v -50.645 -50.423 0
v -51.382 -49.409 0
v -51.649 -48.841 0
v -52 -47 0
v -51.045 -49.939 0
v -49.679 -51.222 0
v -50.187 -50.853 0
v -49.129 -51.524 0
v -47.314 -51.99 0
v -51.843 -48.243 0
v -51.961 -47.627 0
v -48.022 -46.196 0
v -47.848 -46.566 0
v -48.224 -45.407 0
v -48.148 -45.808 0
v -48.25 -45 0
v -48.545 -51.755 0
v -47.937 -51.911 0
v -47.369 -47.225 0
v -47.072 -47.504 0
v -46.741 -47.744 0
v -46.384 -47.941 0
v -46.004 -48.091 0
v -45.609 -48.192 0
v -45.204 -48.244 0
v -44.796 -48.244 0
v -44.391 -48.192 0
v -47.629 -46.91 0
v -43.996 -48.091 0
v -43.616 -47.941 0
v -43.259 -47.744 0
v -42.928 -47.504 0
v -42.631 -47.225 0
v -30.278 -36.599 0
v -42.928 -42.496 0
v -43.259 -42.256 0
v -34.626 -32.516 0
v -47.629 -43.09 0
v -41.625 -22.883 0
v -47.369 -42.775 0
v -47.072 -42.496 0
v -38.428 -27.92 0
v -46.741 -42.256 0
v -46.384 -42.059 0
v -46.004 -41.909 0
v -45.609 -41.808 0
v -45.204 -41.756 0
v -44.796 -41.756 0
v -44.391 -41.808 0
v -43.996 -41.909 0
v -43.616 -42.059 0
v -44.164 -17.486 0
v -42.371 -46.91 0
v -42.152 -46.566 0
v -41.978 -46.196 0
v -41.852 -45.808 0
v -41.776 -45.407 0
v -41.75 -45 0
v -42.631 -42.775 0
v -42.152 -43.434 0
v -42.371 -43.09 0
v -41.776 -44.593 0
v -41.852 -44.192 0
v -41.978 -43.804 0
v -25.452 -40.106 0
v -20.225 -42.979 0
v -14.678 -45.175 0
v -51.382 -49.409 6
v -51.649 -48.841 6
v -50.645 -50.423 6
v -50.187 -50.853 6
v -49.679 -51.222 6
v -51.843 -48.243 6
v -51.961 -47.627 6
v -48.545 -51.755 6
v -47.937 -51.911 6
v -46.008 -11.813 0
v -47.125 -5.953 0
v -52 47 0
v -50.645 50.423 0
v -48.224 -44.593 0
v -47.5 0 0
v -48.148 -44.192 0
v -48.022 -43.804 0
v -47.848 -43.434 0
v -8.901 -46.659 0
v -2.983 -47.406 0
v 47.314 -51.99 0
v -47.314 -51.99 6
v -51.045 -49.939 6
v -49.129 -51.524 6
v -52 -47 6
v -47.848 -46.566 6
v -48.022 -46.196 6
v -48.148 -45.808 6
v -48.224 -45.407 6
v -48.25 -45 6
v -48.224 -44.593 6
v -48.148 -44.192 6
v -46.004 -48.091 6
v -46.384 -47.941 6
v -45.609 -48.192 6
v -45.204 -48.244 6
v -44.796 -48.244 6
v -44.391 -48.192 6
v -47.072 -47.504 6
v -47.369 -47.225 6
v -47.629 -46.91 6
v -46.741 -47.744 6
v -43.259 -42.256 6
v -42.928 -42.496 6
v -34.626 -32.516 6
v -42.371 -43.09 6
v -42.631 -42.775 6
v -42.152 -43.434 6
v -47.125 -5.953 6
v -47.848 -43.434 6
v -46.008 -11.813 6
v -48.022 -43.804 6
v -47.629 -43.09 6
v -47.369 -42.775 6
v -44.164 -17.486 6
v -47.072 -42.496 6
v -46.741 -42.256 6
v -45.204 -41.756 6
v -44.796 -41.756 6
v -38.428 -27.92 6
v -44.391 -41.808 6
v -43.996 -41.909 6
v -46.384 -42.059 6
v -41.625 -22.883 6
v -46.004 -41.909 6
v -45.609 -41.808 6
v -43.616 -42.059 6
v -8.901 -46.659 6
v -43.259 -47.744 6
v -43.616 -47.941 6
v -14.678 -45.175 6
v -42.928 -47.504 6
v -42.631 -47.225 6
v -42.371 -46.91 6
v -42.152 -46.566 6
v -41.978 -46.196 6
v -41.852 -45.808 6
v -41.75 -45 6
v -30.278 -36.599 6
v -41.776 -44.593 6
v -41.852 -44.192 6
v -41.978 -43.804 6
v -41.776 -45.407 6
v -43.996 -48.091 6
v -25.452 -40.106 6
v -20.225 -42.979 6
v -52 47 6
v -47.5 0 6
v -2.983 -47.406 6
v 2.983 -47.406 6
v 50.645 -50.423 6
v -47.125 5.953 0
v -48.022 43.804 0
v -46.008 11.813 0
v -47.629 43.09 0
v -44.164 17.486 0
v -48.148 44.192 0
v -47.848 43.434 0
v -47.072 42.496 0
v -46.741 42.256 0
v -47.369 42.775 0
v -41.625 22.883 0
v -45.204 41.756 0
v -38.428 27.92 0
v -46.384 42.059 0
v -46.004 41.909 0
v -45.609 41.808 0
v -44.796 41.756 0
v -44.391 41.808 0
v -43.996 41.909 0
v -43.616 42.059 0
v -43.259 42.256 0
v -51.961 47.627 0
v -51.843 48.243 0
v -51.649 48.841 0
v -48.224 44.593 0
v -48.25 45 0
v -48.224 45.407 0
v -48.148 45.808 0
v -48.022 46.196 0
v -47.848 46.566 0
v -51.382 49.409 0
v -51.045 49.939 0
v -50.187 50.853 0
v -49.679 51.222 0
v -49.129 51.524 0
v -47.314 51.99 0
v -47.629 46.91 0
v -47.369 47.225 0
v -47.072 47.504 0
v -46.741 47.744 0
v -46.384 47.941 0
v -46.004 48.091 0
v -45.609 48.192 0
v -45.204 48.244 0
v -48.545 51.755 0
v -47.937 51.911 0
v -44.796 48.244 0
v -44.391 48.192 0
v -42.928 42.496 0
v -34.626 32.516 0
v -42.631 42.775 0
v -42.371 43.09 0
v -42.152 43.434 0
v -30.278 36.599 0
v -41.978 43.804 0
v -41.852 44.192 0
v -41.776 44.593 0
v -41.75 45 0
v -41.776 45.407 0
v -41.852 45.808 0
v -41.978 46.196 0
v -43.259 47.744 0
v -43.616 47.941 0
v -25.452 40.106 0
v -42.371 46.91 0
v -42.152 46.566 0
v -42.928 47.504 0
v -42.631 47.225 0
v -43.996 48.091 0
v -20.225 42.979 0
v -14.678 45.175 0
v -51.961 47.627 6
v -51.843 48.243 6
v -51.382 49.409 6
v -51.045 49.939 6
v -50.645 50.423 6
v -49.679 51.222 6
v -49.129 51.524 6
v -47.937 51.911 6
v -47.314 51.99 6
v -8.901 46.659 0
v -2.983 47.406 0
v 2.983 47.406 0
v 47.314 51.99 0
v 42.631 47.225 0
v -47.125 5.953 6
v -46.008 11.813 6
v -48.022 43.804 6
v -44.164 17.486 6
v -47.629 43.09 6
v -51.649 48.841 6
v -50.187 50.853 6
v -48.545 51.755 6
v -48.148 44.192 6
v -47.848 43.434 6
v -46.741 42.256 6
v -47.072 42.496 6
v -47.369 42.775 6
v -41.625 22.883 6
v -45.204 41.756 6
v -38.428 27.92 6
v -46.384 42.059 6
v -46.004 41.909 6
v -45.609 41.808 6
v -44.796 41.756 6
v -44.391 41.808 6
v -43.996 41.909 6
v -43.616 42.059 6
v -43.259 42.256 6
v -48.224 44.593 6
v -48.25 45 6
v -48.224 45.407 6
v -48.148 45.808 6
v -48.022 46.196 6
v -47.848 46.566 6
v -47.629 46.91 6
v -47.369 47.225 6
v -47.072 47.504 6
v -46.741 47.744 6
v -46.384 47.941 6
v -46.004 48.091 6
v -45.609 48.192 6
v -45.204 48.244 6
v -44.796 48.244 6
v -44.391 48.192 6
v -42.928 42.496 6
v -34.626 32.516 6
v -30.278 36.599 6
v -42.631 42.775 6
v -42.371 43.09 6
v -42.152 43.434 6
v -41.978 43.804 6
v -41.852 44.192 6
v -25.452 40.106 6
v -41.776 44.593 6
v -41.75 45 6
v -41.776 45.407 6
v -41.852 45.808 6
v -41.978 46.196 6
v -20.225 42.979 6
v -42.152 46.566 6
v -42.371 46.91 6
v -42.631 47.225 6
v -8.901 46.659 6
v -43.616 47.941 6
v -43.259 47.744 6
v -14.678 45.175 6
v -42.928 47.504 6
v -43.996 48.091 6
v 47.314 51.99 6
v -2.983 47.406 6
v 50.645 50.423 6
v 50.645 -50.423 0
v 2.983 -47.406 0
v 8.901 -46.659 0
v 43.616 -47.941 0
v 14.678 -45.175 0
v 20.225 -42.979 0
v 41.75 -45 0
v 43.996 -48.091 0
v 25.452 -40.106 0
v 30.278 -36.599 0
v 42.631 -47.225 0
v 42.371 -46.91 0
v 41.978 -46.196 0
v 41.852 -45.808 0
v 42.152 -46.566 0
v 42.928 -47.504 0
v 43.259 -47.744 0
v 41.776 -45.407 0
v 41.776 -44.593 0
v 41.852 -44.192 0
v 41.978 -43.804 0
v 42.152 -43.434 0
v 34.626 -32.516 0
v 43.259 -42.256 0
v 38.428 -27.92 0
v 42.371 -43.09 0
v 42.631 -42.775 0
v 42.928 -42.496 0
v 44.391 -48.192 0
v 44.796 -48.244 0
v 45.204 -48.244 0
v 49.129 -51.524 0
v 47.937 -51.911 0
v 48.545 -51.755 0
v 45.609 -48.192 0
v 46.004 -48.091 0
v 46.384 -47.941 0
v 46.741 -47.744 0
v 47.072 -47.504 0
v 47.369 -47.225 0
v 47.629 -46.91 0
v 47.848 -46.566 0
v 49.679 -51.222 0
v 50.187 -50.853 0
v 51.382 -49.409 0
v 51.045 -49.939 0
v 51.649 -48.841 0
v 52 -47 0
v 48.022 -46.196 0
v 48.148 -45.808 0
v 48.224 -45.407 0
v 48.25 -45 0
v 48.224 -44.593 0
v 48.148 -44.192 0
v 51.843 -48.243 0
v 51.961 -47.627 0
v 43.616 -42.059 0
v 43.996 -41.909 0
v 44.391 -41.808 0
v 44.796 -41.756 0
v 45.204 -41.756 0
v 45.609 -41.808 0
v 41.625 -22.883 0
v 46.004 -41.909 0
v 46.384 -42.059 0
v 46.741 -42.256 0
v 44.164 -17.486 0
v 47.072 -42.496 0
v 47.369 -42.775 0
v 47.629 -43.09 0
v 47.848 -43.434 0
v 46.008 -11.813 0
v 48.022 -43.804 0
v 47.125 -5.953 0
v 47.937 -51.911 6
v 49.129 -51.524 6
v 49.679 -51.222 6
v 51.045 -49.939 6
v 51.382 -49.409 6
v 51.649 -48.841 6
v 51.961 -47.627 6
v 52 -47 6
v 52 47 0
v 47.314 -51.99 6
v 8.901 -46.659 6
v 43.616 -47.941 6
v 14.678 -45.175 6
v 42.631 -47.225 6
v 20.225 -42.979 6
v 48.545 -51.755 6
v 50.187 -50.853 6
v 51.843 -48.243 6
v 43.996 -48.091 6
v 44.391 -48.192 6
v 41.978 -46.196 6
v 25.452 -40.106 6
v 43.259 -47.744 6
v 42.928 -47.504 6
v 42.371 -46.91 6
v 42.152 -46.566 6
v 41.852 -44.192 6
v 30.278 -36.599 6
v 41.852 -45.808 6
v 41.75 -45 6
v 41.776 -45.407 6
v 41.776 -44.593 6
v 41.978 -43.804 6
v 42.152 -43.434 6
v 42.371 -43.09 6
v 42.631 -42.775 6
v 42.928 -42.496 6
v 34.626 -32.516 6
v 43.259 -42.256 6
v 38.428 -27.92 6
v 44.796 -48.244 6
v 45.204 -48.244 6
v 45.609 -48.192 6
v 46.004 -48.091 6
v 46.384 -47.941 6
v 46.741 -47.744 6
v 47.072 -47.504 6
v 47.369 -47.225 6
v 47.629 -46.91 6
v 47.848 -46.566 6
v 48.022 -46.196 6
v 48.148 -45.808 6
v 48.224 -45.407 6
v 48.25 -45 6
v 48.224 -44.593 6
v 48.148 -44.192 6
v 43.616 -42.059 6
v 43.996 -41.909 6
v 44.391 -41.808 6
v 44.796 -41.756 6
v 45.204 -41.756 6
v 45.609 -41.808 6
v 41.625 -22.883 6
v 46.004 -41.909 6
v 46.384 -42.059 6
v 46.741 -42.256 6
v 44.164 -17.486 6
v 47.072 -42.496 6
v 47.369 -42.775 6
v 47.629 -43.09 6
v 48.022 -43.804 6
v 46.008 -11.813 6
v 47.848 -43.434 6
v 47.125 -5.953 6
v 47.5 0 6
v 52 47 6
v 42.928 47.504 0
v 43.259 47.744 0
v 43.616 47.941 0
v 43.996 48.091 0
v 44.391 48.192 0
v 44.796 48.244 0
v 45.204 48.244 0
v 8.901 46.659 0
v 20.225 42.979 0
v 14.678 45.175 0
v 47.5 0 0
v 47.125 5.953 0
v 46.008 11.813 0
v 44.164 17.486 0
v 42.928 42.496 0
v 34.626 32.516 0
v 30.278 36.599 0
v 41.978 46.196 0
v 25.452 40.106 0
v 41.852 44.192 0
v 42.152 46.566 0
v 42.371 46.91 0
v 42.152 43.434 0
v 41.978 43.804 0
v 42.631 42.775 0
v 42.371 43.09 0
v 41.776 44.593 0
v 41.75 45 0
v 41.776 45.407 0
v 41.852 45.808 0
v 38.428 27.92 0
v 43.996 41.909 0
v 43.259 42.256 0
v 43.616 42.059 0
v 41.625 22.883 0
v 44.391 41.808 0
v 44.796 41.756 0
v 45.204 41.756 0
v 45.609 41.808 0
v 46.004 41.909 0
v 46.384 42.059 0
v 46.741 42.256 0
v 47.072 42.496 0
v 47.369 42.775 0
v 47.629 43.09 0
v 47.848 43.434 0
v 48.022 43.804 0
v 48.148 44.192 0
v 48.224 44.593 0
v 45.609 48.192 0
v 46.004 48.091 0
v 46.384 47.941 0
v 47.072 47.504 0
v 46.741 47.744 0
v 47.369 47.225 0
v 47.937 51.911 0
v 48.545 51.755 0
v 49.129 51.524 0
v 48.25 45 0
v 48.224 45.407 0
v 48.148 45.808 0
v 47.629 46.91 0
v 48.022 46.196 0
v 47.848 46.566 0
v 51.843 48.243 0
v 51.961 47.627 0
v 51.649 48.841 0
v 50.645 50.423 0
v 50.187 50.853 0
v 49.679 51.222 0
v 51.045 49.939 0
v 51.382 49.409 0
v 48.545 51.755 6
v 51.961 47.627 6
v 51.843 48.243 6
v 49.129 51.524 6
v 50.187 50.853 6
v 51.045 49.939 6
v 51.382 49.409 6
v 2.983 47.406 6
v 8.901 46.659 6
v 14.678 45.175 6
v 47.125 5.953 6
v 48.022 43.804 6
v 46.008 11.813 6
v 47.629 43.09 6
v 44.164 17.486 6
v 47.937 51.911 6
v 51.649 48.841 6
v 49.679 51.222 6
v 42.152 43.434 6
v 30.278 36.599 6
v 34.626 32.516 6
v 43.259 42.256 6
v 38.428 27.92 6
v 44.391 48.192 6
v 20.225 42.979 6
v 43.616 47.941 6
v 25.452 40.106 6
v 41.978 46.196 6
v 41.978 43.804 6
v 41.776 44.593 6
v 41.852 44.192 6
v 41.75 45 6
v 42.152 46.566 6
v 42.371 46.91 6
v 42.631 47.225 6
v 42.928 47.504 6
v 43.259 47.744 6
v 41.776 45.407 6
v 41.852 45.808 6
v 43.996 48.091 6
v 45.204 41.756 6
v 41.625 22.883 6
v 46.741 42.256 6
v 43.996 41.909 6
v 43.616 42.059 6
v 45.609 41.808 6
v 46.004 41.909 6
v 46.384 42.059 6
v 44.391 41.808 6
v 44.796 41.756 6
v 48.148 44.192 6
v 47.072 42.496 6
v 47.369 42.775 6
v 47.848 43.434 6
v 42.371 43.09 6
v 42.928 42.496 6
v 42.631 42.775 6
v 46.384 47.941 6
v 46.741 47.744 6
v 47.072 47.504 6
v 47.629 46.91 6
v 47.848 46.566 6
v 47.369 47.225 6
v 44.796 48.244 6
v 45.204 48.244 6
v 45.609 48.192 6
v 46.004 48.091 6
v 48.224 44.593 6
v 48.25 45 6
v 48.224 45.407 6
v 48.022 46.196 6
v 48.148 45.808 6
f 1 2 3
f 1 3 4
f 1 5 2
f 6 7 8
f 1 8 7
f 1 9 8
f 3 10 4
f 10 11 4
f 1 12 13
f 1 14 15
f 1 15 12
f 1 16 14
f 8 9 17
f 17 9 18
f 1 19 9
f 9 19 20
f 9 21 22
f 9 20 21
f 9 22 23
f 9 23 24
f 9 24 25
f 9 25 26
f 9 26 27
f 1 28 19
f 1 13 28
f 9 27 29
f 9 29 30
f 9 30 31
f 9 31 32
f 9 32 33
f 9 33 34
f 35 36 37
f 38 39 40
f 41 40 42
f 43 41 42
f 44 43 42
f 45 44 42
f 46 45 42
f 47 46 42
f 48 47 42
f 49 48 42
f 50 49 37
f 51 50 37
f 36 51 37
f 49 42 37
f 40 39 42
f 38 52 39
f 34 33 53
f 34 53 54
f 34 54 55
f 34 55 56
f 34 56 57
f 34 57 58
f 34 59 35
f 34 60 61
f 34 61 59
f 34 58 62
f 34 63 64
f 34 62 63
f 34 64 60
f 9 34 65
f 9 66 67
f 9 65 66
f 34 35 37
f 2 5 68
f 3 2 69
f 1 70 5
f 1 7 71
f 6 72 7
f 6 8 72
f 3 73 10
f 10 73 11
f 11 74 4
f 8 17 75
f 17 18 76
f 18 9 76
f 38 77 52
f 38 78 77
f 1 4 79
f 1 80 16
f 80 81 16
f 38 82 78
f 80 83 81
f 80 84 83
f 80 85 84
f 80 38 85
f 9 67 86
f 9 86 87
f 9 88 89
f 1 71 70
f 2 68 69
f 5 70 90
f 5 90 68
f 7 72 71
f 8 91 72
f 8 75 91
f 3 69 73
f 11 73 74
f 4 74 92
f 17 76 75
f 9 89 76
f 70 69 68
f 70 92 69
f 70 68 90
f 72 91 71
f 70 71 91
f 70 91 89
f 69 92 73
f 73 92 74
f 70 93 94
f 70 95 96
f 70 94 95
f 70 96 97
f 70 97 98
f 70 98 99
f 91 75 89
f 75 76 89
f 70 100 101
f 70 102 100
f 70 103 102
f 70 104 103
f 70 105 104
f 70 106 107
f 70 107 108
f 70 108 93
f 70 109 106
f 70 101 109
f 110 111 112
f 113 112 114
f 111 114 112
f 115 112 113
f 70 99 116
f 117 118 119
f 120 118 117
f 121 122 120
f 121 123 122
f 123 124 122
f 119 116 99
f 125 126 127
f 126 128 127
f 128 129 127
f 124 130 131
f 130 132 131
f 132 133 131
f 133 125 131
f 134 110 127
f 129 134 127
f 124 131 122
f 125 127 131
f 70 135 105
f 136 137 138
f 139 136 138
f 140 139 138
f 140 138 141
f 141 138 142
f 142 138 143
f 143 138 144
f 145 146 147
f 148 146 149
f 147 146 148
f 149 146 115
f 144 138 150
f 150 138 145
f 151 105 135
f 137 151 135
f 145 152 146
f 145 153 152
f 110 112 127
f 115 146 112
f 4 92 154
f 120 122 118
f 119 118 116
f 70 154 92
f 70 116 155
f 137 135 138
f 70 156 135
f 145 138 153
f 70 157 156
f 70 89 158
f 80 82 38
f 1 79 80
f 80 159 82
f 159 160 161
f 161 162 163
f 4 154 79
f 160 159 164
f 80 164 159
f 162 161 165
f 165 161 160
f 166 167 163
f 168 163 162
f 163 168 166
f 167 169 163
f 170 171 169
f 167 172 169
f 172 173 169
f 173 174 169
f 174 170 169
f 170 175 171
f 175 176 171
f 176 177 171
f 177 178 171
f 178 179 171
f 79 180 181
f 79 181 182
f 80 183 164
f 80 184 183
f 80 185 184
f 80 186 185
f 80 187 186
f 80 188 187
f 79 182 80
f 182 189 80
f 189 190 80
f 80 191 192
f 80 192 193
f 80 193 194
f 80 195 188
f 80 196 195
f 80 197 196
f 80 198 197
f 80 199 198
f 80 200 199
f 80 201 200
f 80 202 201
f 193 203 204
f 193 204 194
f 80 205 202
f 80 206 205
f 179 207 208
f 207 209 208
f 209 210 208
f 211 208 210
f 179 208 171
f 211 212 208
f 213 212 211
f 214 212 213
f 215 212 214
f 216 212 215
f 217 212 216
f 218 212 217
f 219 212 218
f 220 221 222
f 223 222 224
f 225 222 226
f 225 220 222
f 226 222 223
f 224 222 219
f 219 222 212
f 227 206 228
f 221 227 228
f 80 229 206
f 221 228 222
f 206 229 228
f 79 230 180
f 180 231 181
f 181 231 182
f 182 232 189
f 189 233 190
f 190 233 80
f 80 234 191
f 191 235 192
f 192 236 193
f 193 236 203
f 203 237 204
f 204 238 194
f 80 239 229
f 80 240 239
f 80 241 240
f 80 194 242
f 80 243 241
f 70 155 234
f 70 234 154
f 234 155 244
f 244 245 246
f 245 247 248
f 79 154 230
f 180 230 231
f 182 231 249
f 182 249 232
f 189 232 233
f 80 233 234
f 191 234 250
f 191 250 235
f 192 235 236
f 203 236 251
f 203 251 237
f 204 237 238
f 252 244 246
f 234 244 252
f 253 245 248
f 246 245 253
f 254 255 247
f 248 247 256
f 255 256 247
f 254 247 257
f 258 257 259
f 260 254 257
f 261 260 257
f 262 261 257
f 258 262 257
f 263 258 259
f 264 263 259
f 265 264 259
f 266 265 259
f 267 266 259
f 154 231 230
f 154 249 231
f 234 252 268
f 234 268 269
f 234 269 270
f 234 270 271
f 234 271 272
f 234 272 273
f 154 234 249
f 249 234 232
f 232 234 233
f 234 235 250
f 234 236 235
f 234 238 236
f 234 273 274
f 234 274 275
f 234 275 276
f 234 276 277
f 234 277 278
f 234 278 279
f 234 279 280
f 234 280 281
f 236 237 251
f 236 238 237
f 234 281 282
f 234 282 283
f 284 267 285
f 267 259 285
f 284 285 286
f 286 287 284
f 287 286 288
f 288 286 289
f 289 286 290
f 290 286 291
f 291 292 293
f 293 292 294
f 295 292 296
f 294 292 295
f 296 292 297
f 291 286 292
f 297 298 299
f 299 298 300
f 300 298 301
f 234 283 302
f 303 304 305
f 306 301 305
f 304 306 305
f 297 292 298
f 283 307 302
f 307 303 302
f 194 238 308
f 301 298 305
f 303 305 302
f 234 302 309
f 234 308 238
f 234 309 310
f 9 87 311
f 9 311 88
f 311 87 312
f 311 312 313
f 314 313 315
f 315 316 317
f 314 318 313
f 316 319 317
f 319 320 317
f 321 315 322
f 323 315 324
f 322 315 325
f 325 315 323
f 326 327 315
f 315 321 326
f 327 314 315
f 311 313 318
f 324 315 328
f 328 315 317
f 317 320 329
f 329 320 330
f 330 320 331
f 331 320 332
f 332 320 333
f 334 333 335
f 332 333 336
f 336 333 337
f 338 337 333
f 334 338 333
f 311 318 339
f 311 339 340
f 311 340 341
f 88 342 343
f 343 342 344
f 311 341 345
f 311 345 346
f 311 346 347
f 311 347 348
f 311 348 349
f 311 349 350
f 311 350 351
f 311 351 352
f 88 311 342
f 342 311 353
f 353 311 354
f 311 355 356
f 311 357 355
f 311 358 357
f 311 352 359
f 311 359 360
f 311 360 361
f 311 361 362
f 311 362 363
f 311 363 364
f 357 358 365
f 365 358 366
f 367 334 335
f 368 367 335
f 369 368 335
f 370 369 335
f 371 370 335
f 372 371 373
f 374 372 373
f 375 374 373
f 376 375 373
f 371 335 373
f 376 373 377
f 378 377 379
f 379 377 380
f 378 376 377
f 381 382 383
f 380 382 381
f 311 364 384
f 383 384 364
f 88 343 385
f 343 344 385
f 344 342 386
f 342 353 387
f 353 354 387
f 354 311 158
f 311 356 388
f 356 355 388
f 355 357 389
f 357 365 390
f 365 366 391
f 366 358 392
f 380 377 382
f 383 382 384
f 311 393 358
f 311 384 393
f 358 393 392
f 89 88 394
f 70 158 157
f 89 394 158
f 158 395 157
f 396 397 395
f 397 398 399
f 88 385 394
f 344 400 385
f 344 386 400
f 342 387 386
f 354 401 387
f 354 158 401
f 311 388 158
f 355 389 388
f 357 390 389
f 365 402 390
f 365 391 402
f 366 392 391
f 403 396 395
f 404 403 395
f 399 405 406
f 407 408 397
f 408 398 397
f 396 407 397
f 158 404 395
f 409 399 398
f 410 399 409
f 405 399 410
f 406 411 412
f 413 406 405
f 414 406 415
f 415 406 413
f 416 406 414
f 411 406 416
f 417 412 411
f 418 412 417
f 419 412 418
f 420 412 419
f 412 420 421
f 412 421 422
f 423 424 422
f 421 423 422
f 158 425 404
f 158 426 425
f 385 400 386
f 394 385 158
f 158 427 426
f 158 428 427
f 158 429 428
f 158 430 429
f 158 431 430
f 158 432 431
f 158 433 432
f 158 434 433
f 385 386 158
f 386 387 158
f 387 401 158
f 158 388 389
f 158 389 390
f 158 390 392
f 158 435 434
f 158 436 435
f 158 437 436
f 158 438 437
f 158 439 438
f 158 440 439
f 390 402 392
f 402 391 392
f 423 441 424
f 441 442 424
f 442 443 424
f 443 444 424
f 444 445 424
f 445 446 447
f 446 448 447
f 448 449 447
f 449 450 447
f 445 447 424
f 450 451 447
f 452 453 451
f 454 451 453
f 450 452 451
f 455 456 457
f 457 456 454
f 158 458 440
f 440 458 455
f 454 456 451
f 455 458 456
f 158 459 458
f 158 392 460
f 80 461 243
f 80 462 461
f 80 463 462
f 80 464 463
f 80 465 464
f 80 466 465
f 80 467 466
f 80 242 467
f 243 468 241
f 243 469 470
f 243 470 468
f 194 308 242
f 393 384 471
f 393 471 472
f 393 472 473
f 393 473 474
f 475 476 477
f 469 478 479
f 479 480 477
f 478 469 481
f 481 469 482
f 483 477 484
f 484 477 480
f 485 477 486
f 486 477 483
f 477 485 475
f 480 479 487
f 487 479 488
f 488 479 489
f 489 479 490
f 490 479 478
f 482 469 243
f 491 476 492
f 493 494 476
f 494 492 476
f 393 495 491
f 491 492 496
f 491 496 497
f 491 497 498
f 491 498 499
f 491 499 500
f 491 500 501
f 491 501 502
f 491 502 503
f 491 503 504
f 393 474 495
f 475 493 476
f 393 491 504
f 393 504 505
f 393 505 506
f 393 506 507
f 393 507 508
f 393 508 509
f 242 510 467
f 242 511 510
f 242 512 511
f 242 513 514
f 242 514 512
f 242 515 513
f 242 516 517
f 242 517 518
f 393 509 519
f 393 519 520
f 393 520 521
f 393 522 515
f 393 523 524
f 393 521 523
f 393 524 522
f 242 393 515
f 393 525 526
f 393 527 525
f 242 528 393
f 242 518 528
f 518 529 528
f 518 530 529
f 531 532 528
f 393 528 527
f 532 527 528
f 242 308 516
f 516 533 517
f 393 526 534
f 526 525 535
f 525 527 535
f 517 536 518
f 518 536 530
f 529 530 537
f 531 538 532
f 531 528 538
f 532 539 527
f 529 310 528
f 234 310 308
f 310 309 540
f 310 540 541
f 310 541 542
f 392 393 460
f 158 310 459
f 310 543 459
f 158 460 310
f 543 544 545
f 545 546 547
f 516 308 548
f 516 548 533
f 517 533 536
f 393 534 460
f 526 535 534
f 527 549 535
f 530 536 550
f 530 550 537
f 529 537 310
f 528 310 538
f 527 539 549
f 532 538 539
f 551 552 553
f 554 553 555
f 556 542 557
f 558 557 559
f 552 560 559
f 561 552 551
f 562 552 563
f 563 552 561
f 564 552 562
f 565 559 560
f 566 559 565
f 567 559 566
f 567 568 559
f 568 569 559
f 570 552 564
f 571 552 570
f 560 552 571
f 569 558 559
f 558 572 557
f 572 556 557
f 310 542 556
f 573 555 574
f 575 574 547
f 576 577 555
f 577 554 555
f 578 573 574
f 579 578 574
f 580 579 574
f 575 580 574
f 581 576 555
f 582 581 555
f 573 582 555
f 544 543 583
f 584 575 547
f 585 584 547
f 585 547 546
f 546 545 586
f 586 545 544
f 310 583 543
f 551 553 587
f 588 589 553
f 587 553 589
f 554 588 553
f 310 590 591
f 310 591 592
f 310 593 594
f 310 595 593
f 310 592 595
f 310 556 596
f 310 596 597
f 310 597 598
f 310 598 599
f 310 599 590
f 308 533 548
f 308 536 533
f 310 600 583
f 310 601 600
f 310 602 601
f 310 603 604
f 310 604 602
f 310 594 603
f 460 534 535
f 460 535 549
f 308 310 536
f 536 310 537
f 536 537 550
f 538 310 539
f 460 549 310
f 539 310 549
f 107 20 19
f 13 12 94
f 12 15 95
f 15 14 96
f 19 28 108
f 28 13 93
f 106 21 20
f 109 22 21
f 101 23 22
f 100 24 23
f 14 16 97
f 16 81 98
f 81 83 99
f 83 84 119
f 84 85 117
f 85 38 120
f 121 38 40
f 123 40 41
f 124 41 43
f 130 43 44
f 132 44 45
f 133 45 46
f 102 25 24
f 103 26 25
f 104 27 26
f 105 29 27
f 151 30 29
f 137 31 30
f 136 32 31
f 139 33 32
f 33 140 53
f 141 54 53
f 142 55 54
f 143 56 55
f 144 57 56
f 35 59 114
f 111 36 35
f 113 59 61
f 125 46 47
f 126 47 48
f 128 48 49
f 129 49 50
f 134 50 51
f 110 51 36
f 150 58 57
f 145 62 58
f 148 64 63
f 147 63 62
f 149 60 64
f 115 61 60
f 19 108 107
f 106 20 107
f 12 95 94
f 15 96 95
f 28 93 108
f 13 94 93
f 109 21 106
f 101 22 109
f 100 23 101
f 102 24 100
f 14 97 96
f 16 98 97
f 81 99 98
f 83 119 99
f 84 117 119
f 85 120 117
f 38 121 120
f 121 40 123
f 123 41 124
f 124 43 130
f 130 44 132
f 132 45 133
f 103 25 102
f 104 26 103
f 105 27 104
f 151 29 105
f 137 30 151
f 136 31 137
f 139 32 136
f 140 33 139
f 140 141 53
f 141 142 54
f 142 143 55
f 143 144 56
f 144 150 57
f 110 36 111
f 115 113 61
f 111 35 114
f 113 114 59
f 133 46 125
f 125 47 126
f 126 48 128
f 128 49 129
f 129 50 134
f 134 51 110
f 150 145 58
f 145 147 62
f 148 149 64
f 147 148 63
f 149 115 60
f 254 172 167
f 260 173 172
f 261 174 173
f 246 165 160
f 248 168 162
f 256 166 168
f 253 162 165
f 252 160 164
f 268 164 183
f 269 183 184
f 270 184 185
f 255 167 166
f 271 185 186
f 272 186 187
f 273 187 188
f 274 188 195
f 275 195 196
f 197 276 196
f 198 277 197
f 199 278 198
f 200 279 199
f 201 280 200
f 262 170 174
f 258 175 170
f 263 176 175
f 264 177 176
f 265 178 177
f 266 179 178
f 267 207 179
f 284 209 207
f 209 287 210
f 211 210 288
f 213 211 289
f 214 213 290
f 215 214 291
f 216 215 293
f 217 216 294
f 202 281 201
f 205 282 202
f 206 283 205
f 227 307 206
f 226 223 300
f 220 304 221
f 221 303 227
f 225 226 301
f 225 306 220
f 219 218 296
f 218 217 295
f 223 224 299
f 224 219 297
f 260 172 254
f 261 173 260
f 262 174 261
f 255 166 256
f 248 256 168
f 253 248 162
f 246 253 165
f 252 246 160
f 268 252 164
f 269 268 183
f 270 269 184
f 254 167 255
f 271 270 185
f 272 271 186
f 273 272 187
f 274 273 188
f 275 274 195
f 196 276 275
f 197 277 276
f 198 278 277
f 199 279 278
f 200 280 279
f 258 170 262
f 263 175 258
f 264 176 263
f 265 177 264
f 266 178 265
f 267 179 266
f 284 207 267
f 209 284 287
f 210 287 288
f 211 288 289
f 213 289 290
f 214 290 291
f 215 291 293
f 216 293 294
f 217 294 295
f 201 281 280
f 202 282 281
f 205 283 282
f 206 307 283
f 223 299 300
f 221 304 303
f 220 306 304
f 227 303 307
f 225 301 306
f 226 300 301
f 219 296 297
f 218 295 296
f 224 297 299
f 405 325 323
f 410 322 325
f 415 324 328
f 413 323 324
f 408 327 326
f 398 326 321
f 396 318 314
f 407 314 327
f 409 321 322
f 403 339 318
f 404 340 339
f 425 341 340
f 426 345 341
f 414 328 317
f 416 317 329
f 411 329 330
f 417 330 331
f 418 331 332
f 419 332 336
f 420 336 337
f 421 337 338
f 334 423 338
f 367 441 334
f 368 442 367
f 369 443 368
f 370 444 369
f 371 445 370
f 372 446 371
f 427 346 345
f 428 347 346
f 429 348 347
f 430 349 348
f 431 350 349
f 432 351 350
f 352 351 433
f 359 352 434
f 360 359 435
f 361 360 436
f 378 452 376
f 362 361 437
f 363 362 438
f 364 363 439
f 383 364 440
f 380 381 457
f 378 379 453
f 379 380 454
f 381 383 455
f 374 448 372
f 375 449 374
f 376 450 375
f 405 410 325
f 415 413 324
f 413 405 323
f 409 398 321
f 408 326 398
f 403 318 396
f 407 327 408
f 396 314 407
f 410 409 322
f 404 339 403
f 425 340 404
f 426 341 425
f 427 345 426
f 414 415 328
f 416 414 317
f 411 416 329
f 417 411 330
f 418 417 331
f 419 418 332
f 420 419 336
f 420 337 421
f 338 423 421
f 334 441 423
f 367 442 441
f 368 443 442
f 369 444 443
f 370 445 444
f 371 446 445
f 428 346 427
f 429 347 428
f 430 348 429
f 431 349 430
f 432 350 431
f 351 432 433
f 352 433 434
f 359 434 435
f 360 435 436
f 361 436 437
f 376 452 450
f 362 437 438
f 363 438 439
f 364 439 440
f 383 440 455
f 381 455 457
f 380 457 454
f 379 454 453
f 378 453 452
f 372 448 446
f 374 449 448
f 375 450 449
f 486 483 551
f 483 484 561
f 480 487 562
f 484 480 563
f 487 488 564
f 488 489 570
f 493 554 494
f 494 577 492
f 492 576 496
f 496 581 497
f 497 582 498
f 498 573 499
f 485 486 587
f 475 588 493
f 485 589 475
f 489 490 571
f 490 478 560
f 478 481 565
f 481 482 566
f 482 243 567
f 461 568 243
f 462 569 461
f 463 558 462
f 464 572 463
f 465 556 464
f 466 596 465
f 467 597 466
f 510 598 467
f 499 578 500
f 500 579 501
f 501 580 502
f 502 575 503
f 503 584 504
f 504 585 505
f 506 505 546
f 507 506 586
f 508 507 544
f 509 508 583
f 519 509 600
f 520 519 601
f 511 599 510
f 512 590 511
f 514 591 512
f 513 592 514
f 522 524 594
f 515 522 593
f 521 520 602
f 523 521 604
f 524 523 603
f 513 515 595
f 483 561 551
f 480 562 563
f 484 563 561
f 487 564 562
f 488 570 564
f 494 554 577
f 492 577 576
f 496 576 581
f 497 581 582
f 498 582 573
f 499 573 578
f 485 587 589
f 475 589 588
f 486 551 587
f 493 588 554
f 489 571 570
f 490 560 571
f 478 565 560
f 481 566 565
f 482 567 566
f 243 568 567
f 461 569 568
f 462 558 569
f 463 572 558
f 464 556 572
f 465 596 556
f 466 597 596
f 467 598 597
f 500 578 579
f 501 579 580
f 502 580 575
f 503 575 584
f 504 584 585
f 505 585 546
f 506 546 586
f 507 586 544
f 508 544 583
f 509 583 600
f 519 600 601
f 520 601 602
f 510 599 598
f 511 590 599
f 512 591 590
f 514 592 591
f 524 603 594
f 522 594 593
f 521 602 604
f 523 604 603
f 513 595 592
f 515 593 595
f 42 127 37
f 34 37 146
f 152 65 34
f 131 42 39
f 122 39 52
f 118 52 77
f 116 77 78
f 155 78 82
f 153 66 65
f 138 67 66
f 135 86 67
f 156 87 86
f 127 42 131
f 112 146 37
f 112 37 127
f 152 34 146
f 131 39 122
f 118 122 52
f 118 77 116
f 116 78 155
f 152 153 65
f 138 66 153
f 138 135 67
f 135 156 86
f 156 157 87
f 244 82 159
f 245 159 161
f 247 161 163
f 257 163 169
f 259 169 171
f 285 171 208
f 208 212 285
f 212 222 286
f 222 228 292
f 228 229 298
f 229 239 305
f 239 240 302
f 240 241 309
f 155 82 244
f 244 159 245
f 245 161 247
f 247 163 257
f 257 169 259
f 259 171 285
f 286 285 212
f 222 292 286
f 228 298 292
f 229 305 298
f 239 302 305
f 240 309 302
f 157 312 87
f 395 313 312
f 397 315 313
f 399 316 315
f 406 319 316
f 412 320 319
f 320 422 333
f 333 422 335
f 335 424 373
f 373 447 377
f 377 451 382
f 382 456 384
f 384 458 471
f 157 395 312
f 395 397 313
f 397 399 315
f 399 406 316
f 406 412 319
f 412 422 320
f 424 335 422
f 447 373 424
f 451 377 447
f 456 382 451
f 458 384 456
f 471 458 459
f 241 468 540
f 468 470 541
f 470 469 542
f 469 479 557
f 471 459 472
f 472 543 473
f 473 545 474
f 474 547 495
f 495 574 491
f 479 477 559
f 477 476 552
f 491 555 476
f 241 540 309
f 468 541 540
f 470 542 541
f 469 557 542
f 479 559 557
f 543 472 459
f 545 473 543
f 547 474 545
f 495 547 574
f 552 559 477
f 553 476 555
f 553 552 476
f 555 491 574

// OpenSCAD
$fn = 50;

difference() {
	union() {
		hull() {
			translate(v = [-47.0, 47.0, 0]) {
				cylinder(h = 6, r = 5);
			}
			translate(v = [47.0, 47.0, 0]) {
				cylinder(h = 6, r = 5);
			}
			translate(v = [-47.0, -47.0, 0]) {
				cylinder(h = 6, r = 5);
			}
			translate(v = [47.0, -47.0, 0]) {
				cylinder(h = 6, r = 5);
			}
		}
	}
	union() {
		translate(v = [-45.0, -45.0, -100.0]) {
			cylinder(h = 200, r = 3.25);
		}
		translate(v = [-45.0, 45.0, -100.0]) {
			cylinder(h = 200, r = 3.25);
		}
		translate(v = [45.0, -45.0, -100.0]) {
			cylinder(h = 200, r = 3.25);
		}
		translate(v = [45.0, 45.0, -100.0]) {
			cylinder(h = 200, r = 3.25);
		}
		translate(v = [-45.0, -45.0, -100.0]) {
			cylinder(h = 200, r = 1.8);
		}
		translate(v = [-45.0, 45.0, -100.0]) {
			cylinder(h = 200, r = 1.8);
		}
		translate(v = [45.0, -45.0, -100.0]) {
			cylinder(h = 200, r = 1.8);
		}
		translate(v = [45.0, 45.0, -100.0]) {
			cylinder(h = 200, r = 1.8);
		}
		cylinder(h = 6, r = 47.5);
	}
}
